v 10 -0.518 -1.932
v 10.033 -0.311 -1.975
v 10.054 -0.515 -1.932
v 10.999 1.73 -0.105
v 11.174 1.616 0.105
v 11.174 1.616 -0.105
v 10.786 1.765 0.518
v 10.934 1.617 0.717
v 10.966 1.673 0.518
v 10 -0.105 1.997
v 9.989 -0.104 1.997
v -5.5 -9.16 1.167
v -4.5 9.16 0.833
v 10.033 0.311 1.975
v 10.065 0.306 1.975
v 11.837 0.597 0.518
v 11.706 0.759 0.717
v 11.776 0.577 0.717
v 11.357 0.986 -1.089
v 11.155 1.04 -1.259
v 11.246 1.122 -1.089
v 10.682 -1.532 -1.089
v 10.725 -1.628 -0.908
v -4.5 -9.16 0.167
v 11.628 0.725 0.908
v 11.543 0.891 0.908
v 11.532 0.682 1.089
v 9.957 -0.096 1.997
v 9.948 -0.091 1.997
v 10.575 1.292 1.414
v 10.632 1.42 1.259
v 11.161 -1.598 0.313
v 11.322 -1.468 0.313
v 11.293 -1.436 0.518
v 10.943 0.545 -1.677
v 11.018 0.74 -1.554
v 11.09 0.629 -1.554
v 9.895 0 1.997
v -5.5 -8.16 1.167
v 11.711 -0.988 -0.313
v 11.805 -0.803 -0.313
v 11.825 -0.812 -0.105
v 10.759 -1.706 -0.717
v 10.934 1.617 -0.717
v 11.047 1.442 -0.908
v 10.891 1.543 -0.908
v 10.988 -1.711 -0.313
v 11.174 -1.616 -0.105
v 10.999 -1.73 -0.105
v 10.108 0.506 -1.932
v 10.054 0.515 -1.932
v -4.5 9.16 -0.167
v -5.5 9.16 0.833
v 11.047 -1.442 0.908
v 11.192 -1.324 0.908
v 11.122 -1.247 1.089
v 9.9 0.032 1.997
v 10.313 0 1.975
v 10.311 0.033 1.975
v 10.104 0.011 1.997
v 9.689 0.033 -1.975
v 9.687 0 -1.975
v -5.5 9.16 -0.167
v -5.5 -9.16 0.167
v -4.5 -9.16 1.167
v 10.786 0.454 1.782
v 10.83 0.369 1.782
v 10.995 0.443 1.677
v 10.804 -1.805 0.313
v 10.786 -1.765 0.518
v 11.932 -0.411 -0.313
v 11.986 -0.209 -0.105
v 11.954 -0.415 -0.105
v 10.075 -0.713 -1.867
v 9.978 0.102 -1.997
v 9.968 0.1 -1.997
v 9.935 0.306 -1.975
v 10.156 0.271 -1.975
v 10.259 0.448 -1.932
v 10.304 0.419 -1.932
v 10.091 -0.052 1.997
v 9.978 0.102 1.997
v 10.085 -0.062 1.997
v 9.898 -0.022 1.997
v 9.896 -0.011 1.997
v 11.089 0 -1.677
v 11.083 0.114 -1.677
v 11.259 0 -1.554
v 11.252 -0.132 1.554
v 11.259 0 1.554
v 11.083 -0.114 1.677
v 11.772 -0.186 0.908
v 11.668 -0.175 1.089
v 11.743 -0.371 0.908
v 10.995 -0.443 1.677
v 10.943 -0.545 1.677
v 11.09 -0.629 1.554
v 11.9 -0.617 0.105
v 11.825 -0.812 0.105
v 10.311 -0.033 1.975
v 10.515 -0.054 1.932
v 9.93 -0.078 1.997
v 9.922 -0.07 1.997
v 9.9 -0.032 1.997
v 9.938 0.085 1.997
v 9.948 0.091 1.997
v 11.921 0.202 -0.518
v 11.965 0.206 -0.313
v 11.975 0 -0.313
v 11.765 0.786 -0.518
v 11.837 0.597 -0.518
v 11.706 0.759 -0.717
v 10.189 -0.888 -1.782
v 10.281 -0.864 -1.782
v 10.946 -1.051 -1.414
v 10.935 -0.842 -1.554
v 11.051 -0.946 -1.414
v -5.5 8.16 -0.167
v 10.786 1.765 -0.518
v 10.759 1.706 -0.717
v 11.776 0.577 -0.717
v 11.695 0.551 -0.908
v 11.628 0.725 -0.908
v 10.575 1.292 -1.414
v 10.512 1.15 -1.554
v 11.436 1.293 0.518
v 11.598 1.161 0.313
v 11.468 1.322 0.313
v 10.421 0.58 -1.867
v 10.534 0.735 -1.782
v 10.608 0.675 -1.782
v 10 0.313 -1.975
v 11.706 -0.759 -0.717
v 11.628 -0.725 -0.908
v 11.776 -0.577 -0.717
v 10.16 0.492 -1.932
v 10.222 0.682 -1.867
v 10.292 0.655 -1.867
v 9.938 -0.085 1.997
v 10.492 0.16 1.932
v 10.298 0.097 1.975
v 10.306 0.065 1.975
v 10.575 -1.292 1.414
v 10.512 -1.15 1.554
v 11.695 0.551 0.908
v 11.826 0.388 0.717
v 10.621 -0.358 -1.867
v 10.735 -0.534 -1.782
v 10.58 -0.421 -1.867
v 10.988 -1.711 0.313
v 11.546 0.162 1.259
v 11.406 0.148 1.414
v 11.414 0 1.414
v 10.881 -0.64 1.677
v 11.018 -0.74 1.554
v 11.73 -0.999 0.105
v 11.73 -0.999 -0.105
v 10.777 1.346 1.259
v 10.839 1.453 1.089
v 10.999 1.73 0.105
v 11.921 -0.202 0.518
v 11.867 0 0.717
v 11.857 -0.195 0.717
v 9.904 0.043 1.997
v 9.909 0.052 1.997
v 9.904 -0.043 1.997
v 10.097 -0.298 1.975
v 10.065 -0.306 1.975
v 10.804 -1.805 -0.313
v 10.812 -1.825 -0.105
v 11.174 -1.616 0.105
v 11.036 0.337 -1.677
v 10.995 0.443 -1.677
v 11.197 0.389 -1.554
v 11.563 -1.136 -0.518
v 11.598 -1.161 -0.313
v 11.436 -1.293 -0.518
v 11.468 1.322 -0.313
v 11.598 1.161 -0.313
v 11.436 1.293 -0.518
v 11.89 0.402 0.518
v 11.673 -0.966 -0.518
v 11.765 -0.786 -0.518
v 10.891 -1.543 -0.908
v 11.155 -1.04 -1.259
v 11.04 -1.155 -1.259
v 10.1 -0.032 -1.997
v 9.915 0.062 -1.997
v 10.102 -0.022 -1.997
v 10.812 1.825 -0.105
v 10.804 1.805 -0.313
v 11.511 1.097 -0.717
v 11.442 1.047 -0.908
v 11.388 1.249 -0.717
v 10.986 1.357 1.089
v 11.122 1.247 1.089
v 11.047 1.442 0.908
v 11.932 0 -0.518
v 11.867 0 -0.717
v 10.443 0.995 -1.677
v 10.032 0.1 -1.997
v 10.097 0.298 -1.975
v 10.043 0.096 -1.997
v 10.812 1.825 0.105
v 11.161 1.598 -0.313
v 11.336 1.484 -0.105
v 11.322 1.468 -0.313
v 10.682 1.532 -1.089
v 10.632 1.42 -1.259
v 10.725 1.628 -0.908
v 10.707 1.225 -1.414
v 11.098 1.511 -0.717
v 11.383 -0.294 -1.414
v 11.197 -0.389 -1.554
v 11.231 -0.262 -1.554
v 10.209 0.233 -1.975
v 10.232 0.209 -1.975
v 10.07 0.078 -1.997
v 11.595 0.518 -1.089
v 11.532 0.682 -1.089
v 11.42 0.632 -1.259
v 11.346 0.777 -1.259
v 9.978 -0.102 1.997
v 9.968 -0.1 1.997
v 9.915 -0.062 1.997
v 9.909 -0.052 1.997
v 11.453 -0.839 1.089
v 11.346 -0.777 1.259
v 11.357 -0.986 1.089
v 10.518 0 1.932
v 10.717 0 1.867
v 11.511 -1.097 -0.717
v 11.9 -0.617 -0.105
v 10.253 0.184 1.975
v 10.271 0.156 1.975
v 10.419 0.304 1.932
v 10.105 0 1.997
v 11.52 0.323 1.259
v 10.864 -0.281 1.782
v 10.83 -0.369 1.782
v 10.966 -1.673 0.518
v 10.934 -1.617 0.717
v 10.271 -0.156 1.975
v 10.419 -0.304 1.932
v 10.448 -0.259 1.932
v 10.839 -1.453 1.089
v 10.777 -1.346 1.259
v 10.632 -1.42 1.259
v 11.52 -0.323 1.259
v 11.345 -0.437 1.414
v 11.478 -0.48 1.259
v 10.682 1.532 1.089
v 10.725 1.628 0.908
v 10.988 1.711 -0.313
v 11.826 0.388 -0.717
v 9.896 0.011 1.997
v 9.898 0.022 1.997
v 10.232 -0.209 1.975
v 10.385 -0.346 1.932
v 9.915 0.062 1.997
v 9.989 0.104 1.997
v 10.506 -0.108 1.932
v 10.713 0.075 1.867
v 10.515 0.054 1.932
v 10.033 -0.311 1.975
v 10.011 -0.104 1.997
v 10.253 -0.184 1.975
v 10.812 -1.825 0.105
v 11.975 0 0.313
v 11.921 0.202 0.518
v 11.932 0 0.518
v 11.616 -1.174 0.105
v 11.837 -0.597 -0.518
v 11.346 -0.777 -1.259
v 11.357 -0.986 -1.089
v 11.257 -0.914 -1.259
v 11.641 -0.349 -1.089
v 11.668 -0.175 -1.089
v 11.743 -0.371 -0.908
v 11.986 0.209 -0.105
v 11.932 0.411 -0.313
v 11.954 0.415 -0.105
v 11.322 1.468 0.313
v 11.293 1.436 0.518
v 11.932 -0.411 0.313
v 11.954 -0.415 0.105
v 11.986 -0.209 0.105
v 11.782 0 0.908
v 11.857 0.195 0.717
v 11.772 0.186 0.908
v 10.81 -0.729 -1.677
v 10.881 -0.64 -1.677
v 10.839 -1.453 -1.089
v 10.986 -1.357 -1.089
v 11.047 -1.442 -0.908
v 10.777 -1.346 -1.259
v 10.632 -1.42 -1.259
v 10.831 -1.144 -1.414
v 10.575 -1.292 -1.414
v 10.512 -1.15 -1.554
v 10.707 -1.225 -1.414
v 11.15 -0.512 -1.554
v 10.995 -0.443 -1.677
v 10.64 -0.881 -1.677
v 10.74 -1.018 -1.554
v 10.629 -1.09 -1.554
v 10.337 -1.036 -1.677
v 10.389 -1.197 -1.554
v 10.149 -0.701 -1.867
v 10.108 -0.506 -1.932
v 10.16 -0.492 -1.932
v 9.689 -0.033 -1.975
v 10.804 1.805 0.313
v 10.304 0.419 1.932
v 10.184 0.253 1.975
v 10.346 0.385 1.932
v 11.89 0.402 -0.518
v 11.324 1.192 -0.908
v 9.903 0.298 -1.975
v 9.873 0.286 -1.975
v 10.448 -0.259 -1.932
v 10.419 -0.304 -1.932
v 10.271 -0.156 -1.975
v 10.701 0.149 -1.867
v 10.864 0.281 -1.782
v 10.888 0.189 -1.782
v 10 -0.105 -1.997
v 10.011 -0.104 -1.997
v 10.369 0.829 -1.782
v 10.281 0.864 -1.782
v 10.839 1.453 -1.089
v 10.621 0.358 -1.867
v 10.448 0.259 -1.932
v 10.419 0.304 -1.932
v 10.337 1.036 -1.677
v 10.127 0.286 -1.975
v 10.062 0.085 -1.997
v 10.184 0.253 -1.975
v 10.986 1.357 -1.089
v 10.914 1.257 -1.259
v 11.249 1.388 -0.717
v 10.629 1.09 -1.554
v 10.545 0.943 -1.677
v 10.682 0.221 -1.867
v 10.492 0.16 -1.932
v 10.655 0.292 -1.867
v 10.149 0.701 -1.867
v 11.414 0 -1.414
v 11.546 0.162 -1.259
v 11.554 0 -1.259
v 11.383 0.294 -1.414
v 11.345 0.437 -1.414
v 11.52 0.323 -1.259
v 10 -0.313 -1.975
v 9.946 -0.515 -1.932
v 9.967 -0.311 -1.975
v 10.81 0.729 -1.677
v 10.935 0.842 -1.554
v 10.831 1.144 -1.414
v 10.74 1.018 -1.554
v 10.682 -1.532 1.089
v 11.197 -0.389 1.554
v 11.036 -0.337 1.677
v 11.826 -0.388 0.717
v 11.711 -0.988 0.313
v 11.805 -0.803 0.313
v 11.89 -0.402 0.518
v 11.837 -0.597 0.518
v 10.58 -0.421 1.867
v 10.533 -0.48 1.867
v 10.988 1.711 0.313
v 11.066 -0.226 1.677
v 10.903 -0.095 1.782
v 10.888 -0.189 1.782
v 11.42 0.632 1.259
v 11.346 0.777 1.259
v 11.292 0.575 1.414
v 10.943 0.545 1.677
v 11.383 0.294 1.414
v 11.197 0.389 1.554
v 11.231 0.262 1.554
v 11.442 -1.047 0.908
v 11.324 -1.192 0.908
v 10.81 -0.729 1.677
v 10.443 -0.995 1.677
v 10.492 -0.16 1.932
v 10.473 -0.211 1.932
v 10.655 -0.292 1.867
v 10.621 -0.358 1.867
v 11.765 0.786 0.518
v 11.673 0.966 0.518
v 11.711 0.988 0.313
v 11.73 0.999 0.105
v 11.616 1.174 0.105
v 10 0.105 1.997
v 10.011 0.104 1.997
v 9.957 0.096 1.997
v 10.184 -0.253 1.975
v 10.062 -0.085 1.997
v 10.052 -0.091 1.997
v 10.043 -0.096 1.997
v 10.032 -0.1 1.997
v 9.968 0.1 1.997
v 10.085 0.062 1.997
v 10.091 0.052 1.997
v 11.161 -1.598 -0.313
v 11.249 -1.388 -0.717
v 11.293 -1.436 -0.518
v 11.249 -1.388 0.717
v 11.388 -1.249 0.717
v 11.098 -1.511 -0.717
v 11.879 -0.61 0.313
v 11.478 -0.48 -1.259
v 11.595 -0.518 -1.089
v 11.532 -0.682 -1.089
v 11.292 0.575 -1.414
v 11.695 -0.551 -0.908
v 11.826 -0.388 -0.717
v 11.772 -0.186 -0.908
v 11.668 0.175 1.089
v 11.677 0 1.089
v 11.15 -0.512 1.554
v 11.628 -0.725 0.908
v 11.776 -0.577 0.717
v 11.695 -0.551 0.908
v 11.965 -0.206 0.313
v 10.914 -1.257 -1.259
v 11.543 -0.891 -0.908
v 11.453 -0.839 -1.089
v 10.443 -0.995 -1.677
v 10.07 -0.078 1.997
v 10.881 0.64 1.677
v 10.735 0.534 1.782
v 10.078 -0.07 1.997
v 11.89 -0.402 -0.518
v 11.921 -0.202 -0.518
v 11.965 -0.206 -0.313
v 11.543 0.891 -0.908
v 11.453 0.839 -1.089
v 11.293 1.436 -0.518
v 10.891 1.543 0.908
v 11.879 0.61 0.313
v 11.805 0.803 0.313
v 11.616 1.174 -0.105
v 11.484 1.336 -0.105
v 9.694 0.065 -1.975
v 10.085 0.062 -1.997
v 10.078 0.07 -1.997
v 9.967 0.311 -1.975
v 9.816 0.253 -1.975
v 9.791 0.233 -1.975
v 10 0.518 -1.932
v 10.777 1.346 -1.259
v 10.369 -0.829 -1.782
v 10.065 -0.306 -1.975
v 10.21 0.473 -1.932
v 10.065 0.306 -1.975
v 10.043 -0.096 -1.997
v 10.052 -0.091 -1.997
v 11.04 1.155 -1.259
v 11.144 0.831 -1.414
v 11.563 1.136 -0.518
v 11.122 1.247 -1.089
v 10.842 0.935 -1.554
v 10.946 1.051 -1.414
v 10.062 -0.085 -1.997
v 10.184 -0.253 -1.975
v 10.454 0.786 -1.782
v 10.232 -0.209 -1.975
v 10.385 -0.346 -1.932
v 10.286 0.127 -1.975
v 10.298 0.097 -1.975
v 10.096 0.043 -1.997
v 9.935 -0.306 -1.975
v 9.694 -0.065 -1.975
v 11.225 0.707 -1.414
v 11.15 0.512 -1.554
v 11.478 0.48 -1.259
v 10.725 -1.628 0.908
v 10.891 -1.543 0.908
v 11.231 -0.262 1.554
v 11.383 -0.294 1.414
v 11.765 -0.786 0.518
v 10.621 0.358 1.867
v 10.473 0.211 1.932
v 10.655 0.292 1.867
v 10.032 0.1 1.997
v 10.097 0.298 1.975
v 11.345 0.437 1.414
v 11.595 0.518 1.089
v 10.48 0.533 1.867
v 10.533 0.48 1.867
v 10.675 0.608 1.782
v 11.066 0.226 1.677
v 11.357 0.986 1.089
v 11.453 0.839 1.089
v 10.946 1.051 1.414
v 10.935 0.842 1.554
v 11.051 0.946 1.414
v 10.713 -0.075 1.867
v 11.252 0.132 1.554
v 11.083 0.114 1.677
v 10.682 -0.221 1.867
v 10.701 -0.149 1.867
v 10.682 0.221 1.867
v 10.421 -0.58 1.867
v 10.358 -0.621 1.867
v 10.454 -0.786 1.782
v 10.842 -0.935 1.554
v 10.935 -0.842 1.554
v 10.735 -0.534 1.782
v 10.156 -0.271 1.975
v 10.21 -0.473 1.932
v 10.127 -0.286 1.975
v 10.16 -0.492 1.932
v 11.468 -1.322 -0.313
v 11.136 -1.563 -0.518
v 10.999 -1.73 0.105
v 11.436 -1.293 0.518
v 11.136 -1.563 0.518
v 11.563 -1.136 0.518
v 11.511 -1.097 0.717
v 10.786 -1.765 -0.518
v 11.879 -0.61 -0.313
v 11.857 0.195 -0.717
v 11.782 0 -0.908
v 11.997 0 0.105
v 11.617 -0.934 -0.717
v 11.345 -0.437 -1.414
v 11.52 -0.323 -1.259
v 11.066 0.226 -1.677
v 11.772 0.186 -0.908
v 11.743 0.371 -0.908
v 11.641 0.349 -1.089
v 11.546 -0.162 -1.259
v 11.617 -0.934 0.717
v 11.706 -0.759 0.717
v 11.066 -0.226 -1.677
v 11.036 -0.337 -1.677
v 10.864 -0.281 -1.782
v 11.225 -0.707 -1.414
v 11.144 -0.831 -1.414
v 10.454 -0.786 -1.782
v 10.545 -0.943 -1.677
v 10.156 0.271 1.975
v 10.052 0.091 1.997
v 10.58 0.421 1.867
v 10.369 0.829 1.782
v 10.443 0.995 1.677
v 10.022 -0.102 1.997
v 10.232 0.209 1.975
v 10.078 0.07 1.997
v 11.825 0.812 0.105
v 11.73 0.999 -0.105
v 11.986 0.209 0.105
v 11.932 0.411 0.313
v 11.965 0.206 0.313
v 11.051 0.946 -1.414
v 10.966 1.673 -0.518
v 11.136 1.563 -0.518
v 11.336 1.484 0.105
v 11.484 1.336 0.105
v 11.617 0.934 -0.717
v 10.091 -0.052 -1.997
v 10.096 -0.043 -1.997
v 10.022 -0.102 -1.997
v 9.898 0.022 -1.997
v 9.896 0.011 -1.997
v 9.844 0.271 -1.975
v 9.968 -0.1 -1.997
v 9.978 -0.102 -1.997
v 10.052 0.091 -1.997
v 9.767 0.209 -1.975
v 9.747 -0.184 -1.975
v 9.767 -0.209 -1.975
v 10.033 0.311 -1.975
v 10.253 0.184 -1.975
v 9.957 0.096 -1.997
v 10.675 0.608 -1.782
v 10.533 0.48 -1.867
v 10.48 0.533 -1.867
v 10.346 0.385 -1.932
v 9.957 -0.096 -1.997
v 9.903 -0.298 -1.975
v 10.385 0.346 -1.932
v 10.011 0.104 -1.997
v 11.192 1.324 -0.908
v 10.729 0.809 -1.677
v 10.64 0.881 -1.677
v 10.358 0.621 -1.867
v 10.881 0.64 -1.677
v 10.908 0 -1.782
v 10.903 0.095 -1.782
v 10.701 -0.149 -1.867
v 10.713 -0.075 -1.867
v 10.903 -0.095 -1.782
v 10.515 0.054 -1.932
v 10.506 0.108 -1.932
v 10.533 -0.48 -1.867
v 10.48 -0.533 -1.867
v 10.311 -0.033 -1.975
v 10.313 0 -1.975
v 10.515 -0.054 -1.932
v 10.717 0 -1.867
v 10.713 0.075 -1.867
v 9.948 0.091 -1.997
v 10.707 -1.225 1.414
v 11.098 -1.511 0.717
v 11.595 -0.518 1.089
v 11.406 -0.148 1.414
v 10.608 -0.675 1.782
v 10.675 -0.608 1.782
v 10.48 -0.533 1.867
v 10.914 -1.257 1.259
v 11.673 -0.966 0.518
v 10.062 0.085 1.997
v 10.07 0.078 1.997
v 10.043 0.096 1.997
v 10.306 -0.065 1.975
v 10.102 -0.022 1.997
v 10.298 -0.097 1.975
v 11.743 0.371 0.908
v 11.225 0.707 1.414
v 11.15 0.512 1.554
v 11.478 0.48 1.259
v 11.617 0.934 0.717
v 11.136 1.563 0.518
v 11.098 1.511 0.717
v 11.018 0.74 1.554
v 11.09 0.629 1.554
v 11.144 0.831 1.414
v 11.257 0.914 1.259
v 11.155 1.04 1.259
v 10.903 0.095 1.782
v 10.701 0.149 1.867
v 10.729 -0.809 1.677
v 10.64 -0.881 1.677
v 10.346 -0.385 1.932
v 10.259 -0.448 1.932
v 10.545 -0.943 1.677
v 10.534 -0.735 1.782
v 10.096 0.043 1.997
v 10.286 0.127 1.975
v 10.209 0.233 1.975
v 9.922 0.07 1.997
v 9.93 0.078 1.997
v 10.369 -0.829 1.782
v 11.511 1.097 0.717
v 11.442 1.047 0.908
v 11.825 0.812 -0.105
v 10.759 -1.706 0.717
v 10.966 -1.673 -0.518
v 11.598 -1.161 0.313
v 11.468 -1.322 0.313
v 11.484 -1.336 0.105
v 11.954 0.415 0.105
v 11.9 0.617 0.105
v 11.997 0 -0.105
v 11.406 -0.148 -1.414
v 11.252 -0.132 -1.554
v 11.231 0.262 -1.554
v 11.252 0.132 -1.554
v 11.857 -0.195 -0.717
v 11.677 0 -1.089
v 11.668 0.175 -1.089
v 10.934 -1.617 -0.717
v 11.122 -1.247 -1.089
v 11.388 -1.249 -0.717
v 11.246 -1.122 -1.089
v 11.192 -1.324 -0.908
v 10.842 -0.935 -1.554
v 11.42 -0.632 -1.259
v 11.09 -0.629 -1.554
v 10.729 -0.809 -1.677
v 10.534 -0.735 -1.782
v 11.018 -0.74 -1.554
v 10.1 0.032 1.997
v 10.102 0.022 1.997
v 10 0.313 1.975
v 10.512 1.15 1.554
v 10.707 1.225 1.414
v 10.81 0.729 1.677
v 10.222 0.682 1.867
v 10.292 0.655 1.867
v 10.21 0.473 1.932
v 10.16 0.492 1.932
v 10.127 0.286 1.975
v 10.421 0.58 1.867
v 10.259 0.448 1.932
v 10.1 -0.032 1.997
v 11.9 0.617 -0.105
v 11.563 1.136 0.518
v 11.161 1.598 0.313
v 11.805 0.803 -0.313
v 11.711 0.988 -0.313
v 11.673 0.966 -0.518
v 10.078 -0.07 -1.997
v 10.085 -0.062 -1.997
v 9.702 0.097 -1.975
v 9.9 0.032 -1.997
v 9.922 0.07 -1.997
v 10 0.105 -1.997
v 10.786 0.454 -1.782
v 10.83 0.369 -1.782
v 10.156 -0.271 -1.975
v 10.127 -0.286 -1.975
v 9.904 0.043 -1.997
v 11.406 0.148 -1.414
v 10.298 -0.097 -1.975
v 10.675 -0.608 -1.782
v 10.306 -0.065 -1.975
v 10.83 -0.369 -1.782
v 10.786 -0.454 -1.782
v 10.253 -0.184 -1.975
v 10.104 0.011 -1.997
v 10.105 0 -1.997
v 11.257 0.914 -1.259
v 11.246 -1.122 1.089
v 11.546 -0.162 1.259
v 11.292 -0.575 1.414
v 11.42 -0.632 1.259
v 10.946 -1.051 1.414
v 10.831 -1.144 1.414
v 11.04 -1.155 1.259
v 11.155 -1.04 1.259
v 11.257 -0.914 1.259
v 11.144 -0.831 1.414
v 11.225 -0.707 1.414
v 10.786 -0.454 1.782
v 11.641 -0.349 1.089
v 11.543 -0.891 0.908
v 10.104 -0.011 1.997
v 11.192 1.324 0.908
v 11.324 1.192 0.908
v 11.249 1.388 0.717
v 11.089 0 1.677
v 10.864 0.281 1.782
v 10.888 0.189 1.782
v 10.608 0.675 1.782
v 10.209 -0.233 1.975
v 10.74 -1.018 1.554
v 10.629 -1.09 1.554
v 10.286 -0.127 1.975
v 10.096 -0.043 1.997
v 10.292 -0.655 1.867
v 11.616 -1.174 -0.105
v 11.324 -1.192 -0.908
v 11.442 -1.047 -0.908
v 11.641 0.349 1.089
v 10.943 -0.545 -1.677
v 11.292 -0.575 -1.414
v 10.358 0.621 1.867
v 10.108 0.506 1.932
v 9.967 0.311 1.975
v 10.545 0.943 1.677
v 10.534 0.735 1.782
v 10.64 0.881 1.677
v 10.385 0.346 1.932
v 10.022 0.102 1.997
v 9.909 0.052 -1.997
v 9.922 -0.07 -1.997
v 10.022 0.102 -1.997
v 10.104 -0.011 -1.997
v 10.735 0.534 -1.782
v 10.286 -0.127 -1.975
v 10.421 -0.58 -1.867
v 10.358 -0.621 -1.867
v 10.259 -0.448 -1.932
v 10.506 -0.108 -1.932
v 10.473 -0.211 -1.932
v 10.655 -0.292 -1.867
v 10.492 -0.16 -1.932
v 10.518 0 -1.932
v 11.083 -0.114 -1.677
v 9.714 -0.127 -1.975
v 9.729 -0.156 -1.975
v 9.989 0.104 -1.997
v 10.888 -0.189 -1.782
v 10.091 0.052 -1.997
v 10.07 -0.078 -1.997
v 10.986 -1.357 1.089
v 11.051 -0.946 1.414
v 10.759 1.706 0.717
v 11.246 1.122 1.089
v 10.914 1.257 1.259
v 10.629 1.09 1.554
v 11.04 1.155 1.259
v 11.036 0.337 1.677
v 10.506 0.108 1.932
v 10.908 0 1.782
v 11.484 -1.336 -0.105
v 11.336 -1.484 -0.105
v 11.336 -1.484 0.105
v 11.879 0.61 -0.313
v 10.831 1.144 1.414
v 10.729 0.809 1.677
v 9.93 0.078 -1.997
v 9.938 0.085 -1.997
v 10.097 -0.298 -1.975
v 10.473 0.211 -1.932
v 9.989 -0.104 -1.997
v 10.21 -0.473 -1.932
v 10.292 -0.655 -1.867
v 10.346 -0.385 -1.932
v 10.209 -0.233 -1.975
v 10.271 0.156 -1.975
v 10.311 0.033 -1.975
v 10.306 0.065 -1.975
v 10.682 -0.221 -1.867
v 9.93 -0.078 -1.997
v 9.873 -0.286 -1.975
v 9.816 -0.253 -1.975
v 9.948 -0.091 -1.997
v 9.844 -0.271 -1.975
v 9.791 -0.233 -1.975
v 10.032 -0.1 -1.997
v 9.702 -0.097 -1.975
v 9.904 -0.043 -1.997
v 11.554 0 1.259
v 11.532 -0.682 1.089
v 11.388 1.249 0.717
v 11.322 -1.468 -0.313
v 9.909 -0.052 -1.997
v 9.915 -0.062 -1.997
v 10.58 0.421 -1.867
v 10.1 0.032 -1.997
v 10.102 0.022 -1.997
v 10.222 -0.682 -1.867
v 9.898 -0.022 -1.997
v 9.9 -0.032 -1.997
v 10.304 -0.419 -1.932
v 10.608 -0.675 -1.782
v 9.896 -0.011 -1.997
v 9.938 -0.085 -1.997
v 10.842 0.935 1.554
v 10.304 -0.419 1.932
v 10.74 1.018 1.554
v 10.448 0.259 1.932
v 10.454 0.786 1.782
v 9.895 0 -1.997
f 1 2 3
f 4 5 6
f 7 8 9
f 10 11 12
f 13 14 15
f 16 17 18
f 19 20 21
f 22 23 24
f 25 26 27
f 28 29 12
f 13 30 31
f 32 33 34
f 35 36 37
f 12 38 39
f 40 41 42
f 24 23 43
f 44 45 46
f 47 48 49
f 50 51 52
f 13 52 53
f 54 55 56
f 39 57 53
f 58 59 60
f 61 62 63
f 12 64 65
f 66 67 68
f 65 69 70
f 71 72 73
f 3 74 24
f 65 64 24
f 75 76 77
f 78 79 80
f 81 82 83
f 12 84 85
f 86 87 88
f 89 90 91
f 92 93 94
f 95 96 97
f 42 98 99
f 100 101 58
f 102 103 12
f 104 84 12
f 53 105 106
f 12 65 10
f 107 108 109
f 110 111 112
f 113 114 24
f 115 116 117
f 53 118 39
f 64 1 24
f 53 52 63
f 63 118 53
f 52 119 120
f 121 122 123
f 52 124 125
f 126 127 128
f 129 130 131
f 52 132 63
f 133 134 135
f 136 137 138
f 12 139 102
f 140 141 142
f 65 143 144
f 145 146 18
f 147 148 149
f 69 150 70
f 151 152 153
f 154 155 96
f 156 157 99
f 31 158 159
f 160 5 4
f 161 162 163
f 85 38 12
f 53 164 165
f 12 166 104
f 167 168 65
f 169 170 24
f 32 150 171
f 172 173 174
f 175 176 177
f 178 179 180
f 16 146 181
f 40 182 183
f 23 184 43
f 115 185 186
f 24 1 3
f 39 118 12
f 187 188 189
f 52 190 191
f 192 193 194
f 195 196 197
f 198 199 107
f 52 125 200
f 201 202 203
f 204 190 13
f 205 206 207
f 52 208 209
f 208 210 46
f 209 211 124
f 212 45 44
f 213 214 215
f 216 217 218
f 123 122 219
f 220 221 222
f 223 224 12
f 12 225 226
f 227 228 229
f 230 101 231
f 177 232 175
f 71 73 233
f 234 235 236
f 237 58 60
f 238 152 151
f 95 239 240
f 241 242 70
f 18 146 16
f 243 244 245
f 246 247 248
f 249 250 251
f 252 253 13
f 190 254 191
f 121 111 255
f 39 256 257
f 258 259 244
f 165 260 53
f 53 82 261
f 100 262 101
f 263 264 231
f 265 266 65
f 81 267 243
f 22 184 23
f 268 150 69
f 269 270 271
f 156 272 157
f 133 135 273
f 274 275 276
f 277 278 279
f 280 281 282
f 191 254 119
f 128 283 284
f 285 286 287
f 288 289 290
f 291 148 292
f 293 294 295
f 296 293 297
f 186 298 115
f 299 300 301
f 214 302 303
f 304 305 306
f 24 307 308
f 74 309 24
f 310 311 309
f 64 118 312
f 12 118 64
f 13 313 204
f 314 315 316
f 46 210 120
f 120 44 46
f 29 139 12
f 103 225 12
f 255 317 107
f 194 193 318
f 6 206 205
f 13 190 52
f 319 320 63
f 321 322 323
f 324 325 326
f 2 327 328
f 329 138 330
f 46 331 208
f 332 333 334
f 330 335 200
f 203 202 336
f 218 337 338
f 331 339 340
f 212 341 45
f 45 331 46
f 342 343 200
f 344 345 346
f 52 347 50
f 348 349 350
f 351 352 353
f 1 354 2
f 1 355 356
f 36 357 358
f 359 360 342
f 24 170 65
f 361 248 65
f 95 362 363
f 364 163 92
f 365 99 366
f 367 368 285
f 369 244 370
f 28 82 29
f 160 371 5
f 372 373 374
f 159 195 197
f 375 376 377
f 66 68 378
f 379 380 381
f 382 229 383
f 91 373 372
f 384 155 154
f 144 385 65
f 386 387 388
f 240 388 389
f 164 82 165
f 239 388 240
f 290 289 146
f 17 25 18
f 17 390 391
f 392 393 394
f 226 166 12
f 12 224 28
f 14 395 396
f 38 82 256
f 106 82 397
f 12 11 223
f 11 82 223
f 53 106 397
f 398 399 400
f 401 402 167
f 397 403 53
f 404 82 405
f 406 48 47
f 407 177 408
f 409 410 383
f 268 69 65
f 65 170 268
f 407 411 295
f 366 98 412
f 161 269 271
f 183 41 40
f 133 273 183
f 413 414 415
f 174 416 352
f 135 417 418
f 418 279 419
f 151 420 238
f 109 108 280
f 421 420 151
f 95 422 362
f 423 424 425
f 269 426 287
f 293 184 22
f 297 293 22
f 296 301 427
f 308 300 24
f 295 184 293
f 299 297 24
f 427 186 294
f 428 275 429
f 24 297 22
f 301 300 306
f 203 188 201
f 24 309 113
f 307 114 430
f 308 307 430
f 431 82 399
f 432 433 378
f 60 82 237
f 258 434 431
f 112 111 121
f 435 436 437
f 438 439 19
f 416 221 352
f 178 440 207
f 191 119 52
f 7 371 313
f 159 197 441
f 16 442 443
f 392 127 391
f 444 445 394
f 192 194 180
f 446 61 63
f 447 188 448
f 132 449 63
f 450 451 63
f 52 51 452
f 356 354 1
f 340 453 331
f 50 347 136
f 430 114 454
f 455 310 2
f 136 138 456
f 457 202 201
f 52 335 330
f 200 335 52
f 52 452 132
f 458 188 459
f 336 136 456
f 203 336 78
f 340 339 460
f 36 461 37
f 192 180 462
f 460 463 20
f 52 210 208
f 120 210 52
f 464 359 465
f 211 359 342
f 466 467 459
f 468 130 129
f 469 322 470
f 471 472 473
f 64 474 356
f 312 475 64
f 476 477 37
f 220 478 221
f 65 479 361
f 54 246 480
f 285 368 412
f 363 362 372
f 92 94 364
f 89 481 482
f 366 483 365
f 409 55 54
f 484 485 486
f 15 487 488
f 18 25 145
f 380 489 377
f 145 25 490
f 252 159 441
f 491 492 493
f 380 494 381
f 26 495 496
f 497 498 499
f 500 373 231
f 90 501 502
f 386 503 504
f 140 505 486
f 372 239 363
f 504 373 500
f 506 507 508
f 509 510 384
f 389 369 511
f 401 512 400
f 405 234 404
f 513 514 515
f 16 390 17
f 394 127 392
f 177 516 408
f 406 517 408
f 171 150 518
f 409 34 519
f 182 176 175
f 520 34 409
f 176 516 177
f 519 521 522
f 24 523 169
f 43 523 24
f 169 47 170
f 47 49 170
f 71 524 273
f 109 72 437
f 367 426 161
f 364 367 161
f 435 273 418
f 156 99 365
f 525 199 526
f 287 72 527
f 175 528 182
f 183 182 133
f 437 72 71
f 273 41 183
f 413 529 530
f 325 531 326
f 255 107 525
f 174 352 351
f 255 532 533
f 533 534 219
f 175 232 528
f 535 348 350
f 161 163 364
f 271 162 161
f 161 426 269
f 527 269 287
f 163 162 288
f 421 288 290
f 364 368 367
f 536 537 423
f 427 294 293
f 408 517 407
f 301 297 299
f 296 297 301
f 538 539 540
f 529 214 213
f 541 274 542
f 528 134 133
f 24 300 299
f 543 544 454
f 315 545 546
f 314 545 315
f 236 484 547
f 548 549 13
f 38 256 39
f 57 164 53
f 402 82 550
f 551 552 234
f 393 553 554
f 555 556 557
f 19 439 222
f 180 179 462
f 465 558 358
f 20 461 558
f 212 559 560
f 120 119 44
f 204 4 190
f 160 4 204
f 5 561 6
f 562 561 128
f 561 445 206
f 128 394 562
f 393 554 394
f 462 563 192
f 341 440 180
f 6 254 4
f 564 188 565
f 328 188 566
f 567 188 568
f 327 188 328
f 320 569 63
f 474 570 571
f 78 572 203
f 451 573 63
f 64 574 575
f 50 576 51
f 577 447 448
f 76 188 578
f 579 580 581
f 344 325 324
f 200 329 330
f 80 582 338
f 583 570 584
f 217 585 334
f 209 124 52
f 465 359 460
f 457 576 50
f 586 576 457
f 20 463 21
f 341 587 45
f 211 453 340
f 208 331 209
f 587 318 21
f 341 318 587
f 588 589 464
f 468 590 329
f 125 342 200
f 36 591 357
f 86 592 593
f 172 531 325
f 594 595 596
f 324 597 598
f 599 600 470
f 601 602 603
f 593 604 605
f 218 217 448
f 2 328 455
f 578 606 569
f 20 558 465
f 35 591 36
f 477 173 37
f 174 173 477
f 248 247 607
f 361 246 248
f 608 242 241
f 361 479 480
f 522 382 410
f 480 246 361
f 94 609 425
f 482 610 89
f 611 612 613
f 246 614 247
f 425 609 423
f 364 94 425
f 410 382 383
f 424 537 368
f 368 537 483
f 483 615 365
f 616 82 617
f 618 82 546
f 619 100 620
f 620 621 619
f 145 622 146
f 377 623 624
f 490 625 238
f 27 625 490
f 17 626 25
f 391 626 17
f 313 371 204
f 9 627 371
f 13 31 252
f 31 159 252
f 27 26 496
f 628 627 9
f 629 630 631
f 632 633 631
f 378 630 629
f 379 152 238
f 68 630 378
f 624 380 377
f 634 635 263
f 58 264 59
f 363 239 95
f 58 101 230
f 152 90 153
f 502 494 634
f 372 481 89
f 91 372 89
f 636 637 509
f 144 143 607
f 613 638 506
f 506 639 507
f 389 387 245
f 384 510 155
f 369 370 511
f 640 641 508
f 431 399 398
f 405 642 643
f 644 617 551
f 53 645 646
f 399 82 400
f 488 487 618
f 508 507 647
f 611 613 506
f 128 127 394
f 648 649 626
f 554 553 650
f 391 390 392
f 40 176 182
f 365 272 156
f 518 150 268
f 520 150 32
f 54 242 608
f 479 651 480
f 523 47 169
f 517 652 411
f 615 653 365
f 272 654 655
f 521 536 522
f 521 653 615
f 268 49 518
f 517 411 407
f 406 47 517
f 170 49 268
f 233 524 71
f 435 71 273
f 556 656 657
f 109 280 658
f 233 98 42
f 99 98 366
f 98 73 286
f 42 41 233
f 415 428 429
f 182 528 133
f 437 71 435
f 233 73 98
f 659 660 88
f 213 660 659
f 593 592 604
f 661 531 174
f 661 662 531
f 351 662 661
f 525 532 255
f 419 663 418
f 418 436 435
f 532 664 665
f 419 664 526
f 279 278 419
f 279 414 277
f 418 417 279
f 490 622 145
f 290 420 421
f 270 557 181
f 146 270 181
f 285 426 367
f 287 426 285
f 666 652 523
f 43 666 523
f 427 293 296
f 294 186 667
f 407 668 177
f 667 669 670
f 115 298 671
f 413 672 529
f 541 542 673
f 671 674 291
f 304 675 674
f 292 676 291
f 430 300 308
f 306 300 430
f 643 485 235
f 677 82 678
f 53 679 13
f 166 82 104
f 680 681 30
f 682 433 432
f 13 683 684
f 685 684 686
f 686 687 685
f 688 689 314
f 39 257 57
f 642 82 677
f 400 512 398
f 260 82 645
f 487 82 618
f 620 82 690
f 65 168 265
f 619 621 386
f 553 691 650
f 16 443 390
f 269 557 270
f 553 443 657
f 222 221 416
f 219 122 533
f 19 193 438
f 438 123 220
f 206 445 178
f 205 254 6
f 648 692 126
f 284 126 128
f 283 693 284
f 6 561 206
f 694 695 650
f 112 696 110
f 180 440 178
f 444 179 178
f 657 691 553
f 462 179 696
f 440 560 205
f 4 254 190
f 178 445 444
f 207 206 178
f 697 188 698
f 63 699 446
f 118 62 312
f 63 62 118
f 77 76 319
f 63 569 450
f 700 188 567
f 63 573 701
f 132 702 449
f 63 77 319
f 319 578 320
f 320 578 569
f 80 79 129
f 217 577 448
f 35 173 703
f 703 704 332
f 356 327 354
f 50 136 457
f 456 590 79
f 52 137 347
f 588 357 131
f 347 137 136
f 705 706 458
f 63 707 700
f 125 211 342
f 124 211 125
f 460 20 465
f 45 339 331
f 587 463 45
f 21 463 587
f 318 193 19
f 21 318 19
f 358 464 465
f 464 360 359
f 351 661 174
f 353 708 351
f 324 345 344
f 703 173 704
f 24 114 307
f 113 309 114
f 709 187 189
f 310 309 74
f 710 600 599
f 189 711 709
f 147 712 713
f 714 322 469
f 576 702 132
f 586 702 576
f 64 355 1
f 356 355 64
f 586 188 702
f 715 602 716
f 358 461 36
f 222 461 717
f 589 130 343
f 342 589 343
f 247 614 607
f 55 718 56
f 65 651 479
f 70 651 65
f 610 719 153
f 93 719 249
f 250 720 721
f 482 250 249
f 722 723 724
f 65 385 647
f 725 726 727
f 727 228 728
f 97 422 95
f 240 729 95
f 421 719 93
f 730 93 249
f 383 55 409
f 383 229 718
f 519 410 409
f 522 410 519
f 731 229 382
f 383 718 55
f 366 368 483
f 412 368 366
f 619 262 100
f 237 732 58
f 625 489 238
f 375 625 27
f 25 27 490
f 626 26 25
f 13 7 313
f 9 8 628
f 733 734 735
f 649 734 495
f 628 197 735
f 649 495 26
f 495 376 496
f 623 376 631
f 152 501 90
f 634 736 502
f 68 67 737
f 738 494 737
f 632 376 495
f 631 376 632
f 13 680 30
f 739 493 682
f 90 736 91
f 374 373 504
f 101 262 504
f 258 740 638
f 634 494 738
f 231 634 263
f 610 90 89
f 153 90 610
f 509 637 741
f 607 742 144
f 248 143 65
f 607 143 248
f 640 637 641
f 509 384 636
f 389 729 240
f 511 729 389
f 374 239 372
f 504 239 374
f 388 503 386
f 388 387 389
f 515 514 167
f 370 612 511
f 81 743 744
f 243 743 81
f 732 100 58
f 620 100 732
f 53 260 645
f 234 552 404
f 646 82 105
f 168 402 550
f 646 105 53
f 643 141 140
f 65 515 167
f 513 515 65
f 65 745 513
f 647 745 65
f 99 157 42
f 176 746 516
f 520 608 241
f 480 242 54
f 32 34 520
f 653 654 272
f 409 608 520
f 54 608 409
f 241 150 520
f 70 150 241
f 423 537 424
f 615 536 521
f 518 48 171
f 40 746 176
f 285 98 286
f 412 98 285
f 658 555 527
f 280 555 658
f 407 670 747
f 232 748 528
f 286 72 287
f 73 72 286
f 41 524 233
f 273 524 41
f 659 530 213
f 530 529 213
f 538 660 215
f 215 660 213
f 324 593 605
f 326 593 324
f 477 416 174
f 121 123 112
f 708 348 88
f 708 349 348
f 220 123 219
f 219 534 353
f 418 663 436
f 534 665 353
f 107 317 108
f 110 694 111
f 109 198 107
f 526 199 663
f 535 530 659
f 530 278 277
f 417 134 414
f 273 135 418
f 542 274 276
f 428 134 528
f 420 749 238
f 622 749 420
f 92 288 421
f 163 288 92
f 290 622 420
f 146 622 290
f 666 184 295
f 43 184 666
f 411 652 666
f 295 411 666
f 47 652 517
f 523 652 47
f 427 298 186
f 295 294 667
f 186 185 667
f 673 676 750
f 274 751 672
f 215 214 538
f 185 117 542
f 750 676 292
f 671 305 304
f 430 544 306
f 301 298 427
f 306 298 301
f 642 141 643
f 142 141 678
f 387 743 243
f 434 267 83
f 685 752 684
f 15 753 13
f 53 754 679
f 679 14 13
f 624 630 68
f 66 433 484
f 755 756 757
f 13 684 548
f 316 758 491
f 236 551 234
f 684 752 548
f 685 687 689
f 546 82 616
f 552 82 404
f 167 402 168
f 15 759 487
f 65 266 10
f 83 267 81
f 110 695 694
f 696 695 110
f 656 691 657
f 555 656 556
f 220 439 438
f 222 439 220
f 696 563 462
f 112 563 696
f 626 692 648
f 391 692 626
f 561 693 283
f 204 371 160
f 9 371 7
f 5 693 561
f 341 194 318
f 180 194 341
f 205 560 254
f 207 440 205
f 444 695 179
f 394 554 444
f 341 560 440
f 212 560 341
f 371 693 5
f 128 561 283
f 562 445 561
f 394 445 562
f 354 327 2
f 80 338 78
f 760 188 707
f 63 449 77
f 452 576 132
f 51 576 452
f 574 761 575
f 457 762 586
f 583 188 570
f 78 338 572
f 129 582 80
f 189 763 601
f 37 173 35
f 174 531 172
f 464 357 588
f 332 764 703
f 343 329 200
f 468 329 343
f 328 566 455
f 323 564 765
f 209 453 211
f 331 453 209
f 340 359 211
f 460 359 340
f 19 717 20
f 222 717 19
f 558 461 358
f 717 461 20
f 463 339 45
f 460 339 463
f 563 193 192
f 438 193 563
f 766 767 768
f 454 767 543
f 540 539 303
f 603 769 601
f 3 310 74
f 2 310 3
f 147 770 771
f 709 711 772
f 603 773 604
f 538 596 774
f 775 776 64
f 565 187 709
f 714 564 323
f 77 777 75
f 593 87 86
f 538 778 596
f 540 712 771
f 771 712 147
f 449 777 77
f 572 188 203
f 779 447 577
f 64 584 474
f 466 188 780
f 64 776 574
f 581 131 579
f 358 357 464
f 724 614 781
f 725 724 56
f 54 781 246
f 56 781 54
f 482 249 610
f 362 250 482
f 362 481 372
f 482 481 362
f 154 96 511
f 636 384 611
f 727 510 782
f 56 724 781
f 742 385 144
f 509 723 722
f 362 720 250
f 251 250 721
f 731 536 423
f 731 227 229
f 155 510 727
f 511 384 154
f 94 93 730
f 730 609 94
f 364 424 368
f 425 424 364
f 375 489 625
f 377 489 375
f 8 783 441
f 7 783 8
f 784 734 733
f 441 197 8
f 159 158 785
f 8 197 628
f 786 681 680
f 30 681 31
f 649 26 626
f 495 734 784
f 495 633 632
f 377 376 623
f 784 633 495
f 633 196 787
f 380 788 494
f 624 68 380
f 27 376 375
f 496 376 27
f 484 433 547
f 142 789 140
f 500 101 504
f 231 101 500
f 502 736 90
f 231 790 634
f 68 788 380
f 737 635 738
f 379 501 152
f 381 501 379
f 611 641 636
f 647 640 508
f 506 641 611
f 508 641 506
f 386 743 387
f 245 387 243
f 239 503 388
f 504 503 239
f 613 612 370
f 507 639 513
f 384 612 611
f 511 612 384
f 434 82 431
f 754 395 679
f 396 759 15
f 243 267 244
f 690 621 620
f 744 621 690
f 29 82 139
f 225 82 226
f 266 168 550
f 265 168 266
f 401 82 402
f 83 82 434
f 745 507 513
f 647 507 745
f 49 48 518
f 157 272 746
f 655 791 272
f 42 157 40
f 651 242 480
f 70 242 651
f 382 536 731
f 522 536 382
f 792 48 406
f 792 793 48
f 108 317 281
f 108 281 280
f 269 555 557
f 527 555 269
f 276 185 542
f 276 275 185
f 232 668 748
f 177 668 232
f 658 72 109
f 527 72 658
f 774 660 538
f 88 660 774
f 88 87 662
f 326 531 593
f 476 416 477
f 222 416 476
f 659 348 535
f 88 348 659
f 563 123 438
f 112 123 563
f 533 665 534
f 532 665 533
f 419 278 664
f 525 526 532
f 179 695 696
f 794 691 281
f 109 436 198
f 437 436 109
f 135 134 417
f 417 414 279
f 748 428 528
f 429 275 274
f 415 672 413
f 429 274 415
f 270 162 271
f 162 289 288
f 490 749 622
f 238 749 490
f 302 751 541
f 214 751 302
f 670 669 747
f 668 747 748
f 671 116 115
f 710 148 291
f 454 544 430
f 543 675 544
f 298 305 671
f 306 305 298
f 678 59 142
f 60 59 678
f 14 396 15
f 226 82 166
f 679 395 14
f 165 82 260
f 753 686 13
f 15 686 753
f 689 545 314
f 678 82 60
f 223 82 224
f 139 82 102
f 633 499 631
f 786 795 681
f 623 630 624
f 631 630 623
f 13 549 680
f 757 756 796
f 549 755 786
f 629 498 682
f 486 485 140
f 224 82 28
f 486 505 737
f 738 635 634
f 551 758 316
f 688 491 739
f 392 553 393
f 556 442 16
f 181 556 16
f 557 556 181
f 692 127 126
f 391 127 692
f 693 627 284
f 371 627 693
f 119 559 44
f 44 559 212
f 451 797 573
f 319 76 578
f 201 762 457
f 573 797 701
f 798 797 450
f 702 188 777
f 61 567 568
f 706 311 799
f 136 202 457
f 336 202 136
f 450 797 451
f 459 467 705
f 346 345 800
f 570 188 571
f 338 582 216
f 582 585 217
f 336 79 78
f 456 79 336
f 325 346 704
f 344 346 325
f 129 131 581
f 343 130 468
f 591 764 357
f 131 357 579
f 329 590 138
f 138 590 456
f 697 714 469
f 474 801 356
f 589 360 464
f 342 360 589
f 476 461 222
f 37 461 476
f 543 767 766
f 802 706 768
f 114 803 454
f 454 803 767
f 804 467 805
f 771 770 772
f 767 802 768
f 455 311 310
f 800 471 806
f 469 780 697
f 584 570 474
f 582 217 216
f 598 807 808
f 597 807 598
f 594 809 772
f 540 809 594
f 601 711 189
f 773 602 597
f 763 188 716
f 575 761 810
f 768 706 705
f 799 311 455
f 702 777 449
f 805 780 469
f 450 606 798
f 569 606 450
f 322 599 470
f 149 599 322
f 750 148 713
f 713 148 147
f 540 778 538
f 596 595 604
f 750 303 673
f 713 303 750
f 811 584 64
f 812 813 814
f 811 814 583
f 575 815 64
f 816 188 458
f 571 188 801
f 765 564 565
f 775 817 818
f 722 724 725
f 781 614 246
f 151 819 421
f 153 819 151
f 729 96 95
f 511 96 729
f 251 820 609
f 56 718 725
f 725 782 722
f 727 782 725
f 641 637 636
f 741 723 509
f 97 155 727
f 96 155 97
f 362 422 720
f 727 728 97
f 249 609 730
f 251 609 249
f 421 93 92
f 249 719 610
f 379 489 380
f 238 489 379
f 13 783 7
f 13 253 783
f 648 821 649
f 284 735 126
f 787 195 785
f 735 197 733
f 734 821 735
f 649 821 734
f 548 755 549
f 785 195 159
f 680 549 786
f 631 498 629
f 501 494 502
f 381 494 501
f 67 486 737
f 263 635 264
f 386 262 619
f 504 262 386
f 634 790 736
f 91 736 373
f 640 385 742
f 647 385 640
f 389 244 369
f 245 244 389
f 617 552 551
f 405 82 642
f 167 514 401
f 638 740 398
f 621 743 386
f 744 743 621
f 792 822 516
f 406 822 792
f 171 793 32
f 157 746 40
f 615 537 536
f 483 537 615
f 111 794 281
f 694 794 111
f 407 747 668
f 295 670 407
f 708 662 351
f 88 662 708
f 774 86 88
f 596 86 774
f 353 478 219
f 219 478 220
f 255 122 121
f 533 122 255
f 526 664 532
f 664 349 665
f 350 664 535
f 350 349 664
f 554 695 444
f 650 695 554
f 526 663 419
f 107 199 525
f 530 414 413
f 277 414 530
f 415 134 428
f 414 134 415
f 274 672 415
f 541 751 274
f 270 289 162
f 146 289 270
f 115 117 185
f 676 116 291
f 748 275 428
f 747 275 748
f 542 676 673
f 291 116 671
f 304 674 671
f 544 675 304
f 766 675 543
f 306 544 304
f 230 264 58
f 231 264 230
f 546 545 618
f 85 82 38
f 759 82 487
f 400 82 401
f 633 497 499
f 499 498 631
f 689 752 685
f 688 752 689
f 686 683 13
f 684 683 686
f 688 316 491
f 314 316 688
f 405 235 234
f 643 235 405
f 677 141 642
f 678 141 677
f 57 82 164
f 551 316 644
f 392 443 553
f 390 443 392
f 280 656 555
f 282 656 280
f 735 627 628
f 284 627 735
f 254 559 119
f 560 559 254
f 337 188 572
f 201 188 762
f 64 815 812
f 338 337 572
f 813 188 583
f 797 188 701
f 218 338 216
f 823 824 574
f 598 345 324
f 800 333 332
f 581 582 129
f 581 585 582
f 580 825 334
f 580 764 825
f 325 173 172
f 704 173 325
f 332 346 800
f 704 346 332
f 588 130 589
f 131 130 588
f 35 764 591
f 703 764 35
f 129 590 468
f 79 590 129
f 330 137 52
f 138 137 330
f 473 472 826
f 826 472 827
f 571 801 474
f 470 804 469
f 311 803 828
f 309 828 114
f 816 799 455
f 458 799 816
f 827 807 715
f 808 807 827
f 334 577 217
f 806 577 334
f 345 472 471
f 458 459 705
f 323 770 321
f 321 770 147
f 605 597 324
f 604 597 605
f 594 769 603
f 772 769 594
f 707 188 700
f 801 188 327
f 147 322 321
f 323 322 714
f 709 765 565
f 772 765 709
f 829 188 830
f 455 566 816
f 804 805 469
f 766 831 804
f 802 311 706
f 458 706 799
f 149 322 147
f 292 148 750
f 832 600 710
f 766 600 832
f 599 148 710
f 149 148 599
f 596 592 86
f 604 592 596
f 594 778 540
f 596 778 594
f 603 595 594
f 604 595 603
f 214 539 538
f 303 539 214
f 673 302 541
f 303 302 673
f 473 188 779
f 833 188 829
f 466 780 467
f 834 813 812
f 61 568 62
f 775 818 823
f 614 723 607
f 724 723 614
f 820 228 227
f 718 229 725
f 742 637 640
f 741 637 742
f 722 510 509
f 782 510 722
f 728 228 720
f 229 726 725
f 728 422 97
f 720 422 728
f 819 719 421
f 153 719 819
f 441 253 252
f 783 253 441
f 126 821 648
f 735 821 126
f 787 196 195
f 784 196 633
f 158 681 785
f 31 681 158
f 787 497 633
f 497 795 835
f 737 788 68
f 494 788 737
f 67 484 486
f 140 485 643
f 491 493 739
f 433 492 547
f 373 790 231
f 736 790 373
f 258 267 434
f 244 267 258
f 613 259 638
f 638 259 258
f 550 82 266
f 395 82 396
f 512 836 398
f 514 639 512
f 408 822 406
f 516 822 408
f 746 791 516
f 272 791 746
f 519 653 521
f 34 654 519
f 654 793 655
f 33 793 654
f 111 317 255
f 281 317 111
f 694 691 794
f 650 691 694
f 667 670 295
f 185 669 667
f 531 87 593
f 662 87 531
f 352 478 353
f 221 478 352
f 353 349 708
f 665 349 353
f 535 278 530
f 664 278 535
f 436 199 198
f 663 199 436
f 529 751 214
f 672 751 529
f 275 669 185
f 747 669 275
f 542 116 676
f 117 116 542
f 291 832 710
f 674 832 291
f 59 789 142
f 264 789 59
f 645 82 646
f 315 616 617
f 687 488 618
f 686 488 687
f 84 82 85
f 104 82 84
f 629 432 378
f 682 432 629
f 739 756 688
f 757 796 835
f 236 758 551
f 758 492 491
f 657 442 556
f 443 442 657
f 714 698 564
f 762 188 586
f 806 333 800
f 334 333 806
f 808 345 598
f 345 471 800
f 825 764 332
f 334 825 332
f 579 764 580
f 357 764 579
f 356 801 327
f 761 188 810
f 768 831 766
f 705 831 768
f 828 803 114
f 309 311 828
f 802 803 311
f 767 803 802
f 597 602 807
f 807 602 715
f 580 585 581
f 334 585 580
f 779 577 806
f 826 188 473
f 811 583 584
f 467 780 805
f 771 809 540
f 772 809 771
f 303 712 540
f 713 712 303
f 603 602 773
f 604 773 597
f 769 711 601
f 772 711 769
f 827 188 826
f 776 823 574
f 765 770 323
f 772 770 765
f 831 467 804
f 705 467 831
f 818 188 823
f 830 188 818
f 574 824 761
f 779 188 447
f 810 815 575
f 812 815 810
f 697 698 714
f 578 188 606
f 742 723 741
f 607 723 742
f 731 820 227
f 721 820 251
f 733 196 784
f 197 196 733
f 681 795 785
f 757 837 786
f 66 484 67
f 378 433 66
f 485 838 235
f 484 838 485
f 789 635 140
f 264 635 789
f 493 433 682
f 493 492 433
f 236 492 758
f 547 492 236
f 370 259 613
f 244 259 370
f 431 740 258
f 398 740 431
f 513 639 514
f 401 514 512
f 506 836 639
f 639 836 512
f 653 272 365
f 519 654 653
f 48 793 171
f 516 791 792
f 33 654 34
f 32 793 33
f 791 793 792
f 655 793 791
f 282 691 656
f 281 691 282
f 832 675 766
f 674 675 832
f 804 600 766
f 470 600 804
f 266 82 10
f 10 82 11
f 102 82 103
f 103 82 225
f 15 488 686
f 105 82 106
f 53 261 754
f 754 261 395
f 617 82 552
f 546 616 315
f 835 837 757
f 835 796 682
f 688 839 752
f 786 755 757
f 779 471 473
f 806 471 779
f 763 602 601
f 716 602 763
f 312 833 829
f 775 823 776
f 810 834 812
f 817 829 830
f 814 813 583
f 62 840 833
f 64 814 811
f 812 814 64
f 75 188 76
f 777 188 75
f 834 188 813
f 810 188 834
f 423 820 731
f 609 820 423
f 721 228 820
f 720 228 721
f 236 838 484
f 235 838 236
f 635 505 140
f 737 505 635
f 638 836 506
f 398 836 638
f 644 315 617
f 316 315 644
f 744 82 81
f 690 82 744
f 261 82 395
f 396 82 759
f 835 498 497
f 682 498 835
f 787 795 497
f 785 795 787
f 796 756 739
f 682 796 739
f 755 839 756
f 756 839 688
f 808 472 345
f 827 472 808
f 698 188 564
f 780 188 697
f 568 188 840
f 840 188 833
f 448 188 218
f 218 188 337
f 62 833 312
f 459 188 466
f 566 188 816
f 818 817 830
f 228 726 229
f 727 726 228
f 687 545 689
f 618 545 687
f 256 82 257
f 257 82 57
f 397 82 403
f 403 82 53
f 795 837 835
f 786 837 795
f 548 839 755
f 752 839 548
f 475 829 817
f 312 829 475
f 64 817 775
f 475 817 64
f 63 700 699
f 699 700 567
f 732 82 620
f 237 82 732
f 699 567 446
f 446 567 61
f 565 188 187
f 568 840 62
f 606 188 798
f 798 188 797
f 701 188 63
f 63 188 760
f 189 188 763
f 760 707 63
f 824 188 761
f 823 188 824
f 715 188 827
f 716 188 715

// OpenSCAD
$fn = 60;

module star(outer_radius, inner_radius, height) {
  hull() {
    translate([outer_radius, 0, 0])
    sphere(r = inner_radius);
    translate([outer_radius, 0, 0])
    sphere(r = inner_radius);
    for (i = [0:3]) {
      translate([outer_radius * cos(i * 360 / 3), outer_radius * sin(i * 360 / 3), height * i / 3])
      rotate([0,0,90])
      translate([0,0,0])
      cube([1,1,1],center=true);
    }
  }
}

star(outer_radius = 10, inner_radius = 2, height = 1);
